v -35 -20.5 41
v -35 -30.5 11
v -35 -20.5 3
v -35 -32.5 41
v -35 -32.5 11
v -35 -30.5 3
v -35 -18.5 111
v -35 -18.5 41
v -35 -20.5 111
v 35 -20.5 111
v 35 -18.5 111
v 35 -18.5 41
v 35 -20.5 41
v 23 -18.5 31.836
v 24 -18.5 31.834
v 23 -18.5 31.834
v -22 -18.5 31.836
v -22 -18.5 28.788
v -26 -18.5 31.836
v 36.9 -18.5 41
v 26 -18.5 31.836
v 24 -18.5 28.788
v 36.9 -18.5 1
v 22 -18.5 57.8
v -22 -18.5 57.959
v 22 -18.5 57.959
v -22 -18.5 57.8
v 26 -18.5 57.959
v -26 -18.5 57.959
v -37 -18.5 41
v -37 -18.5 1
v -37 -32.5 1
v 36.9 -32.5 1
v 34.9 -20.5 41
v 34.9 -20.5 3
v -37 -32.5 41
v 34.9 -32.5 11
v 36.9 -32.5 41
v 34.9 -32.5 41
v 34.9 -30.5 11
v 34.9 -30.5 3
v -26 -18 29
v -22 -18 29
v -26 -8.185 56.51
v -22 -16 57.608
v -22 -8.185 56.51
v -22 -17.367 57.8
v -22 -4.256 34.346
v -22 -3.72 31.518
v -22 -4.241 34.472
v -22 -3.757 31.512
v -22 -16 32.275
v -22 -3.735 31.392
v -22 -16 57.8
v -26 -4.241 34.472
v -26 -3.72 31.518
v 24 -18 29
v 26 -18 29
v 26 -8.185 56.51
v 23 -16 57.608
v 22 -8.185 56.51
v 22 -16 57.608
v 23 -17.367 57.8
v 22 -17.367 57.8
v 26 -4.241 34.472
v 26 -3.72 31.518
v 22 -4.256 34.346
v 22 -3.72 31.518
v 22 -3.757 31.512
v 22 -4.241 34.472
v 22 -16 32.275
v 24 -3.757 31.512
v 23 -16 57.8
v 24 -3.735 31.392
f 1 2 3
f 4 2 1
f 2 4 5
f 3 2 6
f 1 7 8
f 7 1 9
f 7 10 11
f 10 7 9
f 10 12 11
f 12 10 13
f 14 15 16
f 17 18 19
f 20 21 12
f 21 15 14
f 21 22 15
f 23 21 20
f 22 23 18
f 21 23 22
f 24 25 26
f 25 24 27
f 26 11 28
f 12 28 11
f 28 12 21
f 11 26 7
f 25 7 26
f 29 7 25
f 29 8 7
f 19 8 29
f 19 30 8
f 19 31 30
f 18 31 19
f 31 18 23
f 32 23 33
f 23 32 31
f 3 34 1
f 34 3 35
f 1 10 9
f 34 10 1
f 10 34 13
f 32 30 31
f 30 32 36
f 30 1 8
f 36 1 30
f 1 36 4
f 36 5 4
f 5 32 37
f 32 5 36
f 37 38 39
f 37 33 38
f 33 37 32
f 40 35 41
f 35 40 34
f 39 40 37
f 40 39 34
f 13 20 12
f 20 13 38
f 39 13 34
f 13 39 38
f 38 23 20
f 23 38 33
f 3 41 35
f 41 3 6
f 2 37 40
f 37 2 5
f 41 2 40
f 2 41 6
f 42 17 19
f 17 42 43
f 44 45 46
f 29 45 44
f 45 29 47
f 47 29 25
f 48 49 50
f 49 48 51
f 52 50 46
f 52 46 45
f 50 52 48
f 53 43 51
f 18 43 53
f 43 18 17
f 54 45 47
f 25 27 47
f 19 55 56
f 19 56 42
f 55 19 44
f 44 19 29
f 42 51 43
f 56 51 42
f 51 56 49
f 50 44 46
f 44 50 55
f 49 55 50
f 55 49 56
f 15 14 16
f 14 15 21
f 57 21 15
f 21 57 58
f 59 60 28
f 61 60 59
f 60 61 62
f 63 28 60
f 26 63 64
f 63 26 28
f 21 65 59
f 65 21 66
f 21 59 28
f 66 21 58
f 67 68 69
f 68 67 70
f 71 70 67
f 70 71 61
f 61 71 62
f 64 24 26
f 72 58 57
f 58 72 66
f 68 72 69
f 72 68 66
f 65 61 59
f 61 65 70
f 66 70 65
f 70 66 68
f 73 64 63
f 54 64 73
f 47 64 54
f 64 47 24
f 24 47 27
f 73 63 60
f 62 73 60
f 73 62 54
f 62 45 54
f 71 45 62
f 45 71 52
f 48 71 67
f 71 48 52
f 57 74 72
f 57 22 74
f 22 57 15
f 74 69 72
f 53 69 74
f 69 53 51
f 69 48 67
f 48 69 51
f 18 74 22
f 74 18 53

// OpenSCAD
translate([-35,-20.5,1])
cube([70,2,110]);

translate([-37,-32.5,1])
cube([2,14,40]);

translate([34.9,-32.5,1])
cube([2,14,40]);

translate([-35,-32.5,1])
cube([70,12,2]);

translate([-35,-32.5,1])
cube([70,2,10]);

hull(){
    translate([-26,-18,29])
    rotate([10,0,0])
    cube([4,14.5,3]);

    translate([-26,-19,55])
    rotate([-8,0,0])
    cube([4,10.5,3]);
}

hull(){
    translate([22,-18,29])
    rotate([10,0,0])
    cube([4,14.5,3]);

    translate([22,-19,55])
    rotate([-8,0,0])
    cube([4,10.5,3]);
}

translate([-22,-20,30])
cube([45,4,27.8]);

translate([-22,-19,28.7])
rotate([10,0,0])
cube([46,15.5,3]);
